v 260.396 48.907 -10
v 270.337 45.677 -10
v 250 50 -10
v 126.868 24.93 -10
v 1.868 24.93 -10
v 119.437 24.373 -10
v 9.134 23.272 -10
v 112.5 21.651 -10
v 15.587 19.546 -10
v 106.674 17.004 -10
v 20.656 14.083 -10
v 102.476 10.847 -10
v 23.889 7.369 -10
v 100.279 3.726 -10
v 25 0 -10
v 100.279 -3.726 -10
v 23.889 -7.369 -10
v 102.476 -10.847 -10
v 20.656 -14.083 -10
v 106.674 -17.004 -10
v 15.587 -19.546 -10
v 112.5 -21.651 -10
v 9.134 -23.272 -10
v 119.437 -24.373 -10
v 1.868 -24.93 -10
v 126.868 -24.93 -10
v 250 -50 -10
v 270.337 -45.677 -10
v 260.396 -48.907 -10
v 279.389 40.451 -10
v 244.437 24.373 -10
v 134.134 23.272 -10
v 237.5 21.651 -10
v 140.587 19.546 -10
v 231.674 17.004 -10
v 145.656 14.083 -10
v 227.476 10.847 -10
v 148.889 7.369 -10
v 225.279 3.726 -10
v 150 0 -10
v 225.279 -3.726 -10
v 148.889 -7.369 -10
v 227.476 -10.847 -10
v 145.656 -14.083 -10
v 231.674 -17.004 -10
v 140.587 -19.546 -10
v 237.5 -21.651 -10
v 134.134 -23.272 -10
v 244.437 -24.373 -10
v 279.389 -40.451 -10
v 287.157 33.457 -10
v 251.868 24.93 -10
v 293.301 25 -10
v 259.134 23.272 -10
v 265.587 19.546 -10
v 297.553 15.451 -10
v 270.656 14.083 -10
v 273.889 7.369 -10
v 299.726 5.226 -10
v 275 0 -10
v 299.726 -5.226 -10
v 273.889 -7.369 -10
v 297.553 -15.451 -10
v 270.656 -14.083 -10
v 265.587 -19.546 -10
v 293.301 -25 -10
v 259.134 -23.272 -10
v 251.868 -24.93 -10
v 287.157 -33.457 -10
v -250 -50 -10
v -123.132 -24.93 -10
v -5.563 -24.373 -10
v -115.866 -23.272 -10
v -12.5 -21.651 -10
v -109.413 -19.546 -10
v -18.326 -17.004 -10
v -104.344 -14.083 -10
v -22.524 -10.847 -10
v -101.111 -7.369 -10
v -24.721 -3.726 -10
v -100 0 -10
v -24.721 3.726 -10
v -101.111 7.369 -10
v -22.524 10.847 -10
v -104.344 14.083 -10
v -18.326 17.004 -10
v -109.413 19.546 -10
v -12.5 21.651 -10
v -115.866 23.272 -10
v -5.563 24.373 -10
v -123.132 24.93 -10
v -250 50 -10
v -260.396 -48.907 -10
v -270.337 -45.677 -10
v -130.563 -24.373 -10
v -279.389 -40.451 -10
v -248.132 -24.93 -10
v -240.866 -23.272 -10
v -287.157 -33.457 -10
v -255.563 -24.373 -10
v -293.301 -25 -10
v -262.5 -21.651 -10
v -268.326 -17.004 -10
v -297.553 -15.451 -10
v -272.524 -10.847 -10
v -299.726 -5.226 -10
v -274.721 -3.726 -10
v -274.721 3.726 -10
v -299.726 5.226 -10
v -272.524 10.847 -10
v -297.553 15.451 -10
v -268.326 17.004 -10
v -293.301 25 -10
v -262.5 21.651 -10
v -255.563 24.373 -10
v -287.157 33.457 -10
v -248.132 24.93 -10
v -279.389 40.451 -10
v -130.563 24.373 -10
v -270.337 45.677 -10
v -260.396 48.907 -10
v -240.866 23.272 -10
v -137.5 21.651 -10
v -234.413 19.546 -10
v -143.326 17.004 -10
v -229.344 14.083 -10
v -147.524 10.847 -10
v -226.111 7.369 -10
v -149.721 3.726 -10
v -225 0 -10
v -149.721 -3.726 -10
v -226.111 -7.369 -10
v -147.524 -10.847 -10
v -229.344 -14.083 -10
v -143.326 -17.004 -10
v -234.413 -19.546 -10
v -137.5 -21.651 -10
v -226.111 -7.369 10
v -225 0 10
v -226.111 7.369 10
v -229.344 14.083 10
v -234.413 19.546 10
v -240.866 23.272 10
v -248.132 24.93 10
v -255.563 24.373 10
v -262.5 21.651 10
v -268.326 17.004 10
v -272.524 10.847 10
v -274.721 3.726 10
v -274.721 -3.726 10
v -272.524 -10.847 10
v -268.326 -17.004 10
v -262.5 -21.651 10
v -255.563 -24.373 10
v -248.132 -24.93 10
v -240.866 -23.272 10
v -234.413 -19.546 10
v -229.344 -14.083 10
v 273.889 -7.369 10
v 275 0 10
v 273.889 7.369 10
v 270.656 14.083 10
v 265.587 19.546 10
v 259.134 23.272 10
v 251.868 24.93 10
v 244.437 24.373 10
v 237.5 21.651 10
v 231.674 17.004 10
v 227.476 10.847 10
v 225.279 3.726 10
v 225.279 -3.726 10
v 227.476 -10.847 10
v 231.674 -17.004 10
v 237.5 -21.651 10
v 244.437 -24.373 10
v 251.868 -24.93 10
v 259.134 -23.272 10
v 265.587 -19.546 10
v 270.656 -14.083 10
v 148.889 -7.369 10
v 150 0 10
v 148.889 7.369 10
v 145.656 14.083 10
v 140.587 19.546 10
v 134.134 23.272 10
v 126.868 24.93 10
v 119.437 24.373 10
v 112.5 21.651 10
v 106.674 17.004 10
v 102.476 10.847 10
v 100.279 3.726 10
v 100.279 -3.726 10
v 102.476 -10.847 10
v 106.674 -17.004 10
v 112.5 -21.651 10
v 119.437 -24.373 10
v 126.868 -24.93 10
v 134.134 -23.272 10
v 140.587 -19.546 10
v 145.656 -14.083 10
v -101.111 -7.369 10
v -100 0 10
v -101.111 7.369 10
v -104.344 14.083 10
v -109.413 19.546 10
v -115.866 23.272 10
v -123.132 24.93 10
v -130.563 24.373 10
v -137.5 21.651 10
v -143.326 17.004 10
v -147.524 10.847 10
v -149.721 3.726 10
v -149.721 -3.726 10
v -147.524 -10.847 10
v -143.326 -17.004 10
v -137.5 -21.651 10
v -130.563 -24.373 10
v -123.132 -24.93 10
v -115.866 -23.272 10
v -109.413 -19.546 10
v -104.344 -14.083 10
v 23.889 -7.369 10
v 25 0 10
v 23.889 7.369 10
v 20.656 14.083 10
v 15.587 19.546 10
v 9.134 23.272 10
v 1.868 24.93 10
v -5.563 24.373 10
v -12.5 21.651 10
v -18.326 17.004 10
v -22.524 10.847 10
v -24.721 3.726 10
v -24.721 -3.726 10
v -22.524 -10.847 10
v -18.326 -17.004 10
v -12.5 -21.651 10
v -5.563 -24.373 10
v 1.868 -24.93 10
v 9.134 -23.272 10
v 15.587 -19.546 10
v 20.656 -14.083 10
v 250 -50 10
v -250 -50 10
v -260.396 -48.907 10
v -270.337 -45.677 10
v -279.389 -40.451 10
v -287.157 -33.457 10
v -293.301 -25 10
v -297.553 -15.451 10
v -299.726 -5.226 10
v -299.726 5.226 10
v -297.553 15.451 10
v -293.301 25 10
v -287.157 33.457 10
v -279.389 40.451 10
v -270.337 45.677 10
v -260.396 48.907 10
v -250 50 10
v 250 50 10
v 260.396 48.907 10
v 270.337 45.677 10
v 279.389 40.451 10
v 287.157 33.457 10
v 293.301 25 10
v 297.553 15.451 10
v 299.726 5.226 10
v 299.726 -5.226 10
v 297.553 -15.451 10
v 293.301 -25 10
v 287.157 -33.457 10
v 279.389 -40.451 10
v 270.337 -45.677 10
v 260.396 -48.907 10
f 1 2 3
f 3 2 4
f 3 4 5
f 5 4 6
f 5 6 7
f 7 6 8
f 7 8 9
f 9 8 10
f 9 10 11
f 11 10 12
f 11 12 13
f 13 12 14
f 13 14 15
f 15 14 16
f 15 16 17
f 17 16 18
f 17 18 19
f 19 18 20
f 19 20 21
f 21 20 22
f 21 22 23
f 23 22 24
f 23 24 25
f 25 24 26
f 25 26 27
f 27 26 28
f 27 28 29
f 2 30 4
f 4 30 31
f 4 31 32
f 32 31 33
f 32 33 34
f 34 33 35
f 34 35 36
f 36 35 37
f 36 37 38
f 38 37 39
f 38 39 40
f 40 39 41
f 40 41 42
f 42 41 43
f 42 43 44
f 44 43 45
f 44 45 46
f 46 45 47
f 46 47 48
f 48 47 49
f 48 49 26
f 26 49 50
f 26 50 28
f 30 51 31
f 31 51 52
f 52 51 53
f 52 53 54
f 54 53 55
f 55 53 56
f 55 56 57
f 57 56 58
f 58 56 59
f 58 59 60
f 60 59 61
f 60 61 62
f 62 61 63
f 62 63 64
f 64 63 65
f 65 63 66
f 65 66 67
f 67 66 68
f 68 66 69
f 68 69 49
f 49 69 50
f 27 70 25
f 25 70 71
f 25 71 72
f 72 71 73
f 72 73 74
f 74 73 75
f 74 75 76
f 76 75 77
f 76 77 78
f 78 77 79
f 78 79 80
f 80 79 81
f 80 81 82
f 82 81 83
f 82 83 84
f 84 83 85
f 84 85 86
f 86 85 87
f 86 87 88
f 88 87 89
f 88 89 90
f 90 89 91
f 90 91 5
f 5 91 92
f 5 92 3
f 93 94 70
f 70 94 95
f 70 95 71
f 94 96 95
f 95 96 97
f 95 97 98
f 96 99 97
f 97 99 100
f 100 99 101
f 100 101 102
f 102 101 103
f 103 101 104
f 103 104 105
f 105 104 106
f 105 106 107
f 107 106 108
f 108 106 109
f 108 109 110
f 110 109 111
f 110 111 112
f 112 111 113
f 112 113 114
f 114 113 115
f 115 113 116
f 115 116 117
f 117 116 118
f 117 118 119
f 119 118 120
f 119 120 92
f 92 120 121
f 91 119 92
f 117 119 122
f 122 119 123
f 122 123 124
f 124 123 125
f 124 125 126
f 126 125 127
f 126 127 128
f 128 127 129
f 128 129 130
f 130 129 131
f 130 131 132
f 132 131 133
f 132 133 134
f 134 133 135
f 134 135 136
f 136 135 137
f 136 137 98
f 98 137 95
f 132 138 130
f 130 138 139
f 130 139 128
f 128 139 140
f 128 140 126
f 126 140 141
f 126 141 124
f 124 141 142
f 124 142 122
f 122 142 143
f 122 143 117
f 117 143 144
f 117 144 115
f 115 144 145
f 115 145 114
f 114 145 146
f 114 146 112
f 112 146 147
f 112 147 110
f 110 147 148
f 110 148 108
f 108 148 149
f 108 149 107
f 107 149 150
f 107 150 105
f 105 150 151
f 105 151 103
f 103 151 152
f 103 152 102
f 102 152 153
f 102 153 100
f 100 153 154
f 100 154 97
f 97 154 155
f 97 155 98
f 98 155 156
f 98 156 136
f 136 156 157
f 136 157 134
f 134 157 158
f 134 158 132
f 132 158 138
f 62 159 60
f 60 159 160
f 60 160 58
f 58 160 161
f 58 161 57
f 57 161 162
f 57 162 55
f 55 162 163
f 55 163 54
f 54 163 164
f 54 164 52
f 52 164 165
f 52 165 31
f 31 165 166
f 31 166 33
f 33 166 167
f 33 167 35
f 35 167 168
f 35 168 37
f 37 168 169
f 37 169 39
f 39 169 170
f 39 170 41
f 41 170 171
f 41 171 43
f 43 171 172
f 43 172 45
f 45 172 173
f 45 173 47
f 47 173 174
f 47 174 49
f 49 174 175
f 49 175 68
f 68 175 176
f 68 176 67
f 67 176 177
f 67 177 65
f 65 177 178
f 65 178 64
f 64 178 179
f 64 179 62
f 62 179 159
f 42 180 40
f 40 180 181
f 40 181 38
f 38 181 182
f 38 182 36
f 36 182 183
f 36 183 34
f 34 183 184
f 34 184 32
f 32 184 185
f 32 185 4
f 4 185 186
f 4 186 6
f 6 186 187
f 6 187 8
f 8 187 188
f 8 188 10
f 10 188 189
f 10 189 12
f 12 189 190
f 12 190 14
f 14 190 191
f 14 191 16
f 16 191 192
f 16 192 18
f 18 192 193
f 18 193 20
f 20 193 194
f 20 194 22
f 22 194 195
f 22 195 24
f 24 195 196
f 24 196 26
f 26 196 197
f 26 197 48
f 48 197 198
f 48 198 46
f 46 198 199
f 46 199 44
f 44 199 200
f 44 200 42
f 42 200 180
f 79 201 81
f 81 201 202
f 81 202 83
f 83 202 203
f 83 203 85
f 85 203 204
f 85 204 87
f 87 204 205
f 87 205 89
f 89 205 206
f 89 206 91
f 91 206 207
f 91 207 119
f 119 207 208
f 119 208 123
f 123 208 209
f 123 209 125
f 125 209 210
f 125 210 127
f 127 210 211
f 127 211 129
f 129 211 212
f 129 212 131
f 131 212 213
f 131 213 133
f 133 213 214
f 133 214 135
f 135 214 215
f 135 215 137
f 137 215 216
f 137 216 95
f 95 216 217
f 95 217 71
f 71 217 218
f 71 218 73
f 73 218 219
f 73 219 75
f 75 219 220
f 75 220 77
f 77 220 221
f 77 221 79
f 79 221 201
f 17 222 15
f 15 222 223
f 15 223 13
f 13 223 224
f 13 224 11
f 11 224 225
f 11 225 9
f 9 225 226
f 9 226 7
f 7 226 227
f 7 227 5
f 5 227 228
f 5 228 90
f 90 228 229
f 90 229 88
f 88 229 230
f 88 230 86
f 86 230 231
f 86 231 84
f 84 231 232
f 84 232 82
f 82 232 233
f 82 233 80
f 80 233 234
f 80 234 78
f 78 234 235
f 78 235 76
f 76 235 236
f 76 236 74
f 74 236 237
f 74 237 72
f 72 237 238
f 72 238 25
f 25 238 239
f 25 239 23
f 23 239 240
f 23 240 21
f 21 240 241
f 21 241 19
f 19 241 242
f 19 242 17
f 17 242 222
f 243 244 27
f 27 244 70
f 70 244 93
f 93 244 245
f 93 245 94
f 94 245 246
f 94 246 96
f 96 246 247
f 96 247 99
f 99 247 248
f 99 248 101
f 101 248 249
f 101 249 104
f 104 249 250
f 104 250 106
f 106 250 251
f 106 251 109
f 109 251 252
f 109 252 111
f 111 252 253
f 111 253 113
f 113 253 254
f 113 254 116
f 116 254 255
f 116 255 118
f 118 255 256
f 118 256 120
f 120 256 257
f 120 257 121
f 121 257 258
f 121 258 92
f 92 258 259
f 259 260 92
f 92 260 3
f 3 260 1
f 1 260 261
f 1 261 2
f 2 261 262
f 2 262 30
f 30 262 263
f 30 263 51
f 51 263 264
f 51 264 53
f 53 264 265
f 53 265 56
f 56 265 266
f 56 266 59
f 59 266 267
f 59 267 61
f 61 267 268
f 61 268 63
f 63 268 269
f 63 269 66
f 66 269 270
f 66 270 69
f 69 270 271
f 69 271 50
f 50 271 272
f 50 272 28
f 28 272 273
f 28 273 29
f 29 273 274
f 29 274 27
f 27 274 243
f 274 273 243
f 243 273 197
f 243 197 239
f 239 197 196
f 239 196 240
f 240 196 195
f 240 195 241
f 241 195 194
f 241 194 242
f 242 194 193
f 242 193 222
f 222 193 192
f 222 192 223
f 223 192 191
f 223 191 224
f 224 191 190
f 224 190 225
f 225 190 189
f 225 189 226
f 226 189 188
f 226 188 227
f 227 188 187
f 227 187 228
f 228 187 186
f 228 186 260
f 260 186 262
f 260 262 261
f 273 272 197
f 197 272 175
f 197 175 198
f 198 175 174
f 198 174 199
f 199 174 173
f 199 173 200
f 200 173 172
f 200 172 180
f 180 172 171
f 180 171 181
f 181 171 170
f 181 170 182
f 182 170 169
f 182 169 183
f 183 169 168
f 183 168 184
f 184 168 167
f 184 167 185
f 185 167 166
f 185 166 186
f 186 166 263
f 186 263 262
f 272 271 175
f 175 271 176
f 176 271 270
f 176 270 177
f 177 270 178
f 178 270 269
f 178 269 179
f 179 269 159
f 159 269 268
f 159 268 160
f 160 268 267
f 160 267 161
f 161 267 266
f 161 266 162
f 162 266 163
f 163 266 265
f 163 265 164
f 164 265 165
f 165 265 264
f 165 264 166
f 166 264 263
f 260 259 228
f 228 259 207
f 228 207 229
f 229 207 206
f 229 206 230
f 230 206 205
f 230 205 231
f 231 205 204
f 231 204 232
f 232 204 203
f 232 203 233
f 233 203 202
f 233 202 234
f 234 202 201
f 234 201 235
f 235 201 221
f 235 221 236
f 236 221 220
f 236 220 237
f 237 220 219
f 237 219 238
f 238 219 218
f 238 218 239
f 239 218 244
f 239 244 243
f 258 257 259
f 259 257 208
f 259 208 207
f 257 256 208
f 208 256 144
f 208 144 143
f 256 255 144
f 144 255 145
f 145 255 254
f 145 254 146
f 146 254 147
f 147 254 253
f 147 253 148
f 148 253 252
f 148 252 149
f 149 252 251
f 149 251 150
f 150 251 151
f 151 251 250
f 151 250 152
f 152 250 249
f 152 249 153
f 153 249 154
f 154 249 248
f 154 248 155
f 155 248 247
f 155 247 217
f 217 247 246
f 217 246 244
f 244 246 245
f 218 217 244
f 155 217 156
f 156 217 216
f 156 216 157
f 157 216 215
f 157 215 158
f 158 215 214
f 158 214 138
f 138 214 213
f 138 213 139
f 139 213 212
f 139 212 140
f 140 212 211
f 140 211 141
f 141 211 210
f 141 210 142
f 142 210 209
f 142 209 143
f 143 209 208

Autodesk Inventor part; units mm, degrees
ref_plane "YZ Plane" through (0, 0, 0) normal (1, 0, 0) x (0, 1, 0)
ref_plane "XZ Plane" through (0, 0, 0) normal (0, 1, 0) x (-1, 0, 0)
ref_plane "XY Plane" through (0, 0, 0) normal (0, 0, 1) x (1, 0, 0)
sketch "Sketch1" plane through (0, 0, 0) normal (0, 0, 1) x (1, 0, 0)
  line L0 (-250, 0) -> (250, 0) construction
  line L1 (-250, -50) -> (250, -50)
  line L2 (250, 50) -> (-250, 50)
  arc A0 (-250, 50) -> (-250, -50) centre (-250, 0) ccw
  arc A1 (250, -50) -> (250, 50) centre (250, 0) ccw
  circle A2 centre (-250, 0) radius 25
  circle A3 centre (0, 0) radius 25
  circle A4 centre (250, 0) radius 25
  circle A5 centre (-125, 0) radius 25
  circle A6 centre (125, 0) radius 25
  dimension "d0" = 500
  dimension "d1" = 50
  dimension "d2" = 50
  dimension "d3" = 125
  dimension "d4" = 125
extrude "Extrusion1" add sketch "Sketch1" along normal mid plane 20
properties part number "CE-10.2.1" material "Aluminum 6061"
